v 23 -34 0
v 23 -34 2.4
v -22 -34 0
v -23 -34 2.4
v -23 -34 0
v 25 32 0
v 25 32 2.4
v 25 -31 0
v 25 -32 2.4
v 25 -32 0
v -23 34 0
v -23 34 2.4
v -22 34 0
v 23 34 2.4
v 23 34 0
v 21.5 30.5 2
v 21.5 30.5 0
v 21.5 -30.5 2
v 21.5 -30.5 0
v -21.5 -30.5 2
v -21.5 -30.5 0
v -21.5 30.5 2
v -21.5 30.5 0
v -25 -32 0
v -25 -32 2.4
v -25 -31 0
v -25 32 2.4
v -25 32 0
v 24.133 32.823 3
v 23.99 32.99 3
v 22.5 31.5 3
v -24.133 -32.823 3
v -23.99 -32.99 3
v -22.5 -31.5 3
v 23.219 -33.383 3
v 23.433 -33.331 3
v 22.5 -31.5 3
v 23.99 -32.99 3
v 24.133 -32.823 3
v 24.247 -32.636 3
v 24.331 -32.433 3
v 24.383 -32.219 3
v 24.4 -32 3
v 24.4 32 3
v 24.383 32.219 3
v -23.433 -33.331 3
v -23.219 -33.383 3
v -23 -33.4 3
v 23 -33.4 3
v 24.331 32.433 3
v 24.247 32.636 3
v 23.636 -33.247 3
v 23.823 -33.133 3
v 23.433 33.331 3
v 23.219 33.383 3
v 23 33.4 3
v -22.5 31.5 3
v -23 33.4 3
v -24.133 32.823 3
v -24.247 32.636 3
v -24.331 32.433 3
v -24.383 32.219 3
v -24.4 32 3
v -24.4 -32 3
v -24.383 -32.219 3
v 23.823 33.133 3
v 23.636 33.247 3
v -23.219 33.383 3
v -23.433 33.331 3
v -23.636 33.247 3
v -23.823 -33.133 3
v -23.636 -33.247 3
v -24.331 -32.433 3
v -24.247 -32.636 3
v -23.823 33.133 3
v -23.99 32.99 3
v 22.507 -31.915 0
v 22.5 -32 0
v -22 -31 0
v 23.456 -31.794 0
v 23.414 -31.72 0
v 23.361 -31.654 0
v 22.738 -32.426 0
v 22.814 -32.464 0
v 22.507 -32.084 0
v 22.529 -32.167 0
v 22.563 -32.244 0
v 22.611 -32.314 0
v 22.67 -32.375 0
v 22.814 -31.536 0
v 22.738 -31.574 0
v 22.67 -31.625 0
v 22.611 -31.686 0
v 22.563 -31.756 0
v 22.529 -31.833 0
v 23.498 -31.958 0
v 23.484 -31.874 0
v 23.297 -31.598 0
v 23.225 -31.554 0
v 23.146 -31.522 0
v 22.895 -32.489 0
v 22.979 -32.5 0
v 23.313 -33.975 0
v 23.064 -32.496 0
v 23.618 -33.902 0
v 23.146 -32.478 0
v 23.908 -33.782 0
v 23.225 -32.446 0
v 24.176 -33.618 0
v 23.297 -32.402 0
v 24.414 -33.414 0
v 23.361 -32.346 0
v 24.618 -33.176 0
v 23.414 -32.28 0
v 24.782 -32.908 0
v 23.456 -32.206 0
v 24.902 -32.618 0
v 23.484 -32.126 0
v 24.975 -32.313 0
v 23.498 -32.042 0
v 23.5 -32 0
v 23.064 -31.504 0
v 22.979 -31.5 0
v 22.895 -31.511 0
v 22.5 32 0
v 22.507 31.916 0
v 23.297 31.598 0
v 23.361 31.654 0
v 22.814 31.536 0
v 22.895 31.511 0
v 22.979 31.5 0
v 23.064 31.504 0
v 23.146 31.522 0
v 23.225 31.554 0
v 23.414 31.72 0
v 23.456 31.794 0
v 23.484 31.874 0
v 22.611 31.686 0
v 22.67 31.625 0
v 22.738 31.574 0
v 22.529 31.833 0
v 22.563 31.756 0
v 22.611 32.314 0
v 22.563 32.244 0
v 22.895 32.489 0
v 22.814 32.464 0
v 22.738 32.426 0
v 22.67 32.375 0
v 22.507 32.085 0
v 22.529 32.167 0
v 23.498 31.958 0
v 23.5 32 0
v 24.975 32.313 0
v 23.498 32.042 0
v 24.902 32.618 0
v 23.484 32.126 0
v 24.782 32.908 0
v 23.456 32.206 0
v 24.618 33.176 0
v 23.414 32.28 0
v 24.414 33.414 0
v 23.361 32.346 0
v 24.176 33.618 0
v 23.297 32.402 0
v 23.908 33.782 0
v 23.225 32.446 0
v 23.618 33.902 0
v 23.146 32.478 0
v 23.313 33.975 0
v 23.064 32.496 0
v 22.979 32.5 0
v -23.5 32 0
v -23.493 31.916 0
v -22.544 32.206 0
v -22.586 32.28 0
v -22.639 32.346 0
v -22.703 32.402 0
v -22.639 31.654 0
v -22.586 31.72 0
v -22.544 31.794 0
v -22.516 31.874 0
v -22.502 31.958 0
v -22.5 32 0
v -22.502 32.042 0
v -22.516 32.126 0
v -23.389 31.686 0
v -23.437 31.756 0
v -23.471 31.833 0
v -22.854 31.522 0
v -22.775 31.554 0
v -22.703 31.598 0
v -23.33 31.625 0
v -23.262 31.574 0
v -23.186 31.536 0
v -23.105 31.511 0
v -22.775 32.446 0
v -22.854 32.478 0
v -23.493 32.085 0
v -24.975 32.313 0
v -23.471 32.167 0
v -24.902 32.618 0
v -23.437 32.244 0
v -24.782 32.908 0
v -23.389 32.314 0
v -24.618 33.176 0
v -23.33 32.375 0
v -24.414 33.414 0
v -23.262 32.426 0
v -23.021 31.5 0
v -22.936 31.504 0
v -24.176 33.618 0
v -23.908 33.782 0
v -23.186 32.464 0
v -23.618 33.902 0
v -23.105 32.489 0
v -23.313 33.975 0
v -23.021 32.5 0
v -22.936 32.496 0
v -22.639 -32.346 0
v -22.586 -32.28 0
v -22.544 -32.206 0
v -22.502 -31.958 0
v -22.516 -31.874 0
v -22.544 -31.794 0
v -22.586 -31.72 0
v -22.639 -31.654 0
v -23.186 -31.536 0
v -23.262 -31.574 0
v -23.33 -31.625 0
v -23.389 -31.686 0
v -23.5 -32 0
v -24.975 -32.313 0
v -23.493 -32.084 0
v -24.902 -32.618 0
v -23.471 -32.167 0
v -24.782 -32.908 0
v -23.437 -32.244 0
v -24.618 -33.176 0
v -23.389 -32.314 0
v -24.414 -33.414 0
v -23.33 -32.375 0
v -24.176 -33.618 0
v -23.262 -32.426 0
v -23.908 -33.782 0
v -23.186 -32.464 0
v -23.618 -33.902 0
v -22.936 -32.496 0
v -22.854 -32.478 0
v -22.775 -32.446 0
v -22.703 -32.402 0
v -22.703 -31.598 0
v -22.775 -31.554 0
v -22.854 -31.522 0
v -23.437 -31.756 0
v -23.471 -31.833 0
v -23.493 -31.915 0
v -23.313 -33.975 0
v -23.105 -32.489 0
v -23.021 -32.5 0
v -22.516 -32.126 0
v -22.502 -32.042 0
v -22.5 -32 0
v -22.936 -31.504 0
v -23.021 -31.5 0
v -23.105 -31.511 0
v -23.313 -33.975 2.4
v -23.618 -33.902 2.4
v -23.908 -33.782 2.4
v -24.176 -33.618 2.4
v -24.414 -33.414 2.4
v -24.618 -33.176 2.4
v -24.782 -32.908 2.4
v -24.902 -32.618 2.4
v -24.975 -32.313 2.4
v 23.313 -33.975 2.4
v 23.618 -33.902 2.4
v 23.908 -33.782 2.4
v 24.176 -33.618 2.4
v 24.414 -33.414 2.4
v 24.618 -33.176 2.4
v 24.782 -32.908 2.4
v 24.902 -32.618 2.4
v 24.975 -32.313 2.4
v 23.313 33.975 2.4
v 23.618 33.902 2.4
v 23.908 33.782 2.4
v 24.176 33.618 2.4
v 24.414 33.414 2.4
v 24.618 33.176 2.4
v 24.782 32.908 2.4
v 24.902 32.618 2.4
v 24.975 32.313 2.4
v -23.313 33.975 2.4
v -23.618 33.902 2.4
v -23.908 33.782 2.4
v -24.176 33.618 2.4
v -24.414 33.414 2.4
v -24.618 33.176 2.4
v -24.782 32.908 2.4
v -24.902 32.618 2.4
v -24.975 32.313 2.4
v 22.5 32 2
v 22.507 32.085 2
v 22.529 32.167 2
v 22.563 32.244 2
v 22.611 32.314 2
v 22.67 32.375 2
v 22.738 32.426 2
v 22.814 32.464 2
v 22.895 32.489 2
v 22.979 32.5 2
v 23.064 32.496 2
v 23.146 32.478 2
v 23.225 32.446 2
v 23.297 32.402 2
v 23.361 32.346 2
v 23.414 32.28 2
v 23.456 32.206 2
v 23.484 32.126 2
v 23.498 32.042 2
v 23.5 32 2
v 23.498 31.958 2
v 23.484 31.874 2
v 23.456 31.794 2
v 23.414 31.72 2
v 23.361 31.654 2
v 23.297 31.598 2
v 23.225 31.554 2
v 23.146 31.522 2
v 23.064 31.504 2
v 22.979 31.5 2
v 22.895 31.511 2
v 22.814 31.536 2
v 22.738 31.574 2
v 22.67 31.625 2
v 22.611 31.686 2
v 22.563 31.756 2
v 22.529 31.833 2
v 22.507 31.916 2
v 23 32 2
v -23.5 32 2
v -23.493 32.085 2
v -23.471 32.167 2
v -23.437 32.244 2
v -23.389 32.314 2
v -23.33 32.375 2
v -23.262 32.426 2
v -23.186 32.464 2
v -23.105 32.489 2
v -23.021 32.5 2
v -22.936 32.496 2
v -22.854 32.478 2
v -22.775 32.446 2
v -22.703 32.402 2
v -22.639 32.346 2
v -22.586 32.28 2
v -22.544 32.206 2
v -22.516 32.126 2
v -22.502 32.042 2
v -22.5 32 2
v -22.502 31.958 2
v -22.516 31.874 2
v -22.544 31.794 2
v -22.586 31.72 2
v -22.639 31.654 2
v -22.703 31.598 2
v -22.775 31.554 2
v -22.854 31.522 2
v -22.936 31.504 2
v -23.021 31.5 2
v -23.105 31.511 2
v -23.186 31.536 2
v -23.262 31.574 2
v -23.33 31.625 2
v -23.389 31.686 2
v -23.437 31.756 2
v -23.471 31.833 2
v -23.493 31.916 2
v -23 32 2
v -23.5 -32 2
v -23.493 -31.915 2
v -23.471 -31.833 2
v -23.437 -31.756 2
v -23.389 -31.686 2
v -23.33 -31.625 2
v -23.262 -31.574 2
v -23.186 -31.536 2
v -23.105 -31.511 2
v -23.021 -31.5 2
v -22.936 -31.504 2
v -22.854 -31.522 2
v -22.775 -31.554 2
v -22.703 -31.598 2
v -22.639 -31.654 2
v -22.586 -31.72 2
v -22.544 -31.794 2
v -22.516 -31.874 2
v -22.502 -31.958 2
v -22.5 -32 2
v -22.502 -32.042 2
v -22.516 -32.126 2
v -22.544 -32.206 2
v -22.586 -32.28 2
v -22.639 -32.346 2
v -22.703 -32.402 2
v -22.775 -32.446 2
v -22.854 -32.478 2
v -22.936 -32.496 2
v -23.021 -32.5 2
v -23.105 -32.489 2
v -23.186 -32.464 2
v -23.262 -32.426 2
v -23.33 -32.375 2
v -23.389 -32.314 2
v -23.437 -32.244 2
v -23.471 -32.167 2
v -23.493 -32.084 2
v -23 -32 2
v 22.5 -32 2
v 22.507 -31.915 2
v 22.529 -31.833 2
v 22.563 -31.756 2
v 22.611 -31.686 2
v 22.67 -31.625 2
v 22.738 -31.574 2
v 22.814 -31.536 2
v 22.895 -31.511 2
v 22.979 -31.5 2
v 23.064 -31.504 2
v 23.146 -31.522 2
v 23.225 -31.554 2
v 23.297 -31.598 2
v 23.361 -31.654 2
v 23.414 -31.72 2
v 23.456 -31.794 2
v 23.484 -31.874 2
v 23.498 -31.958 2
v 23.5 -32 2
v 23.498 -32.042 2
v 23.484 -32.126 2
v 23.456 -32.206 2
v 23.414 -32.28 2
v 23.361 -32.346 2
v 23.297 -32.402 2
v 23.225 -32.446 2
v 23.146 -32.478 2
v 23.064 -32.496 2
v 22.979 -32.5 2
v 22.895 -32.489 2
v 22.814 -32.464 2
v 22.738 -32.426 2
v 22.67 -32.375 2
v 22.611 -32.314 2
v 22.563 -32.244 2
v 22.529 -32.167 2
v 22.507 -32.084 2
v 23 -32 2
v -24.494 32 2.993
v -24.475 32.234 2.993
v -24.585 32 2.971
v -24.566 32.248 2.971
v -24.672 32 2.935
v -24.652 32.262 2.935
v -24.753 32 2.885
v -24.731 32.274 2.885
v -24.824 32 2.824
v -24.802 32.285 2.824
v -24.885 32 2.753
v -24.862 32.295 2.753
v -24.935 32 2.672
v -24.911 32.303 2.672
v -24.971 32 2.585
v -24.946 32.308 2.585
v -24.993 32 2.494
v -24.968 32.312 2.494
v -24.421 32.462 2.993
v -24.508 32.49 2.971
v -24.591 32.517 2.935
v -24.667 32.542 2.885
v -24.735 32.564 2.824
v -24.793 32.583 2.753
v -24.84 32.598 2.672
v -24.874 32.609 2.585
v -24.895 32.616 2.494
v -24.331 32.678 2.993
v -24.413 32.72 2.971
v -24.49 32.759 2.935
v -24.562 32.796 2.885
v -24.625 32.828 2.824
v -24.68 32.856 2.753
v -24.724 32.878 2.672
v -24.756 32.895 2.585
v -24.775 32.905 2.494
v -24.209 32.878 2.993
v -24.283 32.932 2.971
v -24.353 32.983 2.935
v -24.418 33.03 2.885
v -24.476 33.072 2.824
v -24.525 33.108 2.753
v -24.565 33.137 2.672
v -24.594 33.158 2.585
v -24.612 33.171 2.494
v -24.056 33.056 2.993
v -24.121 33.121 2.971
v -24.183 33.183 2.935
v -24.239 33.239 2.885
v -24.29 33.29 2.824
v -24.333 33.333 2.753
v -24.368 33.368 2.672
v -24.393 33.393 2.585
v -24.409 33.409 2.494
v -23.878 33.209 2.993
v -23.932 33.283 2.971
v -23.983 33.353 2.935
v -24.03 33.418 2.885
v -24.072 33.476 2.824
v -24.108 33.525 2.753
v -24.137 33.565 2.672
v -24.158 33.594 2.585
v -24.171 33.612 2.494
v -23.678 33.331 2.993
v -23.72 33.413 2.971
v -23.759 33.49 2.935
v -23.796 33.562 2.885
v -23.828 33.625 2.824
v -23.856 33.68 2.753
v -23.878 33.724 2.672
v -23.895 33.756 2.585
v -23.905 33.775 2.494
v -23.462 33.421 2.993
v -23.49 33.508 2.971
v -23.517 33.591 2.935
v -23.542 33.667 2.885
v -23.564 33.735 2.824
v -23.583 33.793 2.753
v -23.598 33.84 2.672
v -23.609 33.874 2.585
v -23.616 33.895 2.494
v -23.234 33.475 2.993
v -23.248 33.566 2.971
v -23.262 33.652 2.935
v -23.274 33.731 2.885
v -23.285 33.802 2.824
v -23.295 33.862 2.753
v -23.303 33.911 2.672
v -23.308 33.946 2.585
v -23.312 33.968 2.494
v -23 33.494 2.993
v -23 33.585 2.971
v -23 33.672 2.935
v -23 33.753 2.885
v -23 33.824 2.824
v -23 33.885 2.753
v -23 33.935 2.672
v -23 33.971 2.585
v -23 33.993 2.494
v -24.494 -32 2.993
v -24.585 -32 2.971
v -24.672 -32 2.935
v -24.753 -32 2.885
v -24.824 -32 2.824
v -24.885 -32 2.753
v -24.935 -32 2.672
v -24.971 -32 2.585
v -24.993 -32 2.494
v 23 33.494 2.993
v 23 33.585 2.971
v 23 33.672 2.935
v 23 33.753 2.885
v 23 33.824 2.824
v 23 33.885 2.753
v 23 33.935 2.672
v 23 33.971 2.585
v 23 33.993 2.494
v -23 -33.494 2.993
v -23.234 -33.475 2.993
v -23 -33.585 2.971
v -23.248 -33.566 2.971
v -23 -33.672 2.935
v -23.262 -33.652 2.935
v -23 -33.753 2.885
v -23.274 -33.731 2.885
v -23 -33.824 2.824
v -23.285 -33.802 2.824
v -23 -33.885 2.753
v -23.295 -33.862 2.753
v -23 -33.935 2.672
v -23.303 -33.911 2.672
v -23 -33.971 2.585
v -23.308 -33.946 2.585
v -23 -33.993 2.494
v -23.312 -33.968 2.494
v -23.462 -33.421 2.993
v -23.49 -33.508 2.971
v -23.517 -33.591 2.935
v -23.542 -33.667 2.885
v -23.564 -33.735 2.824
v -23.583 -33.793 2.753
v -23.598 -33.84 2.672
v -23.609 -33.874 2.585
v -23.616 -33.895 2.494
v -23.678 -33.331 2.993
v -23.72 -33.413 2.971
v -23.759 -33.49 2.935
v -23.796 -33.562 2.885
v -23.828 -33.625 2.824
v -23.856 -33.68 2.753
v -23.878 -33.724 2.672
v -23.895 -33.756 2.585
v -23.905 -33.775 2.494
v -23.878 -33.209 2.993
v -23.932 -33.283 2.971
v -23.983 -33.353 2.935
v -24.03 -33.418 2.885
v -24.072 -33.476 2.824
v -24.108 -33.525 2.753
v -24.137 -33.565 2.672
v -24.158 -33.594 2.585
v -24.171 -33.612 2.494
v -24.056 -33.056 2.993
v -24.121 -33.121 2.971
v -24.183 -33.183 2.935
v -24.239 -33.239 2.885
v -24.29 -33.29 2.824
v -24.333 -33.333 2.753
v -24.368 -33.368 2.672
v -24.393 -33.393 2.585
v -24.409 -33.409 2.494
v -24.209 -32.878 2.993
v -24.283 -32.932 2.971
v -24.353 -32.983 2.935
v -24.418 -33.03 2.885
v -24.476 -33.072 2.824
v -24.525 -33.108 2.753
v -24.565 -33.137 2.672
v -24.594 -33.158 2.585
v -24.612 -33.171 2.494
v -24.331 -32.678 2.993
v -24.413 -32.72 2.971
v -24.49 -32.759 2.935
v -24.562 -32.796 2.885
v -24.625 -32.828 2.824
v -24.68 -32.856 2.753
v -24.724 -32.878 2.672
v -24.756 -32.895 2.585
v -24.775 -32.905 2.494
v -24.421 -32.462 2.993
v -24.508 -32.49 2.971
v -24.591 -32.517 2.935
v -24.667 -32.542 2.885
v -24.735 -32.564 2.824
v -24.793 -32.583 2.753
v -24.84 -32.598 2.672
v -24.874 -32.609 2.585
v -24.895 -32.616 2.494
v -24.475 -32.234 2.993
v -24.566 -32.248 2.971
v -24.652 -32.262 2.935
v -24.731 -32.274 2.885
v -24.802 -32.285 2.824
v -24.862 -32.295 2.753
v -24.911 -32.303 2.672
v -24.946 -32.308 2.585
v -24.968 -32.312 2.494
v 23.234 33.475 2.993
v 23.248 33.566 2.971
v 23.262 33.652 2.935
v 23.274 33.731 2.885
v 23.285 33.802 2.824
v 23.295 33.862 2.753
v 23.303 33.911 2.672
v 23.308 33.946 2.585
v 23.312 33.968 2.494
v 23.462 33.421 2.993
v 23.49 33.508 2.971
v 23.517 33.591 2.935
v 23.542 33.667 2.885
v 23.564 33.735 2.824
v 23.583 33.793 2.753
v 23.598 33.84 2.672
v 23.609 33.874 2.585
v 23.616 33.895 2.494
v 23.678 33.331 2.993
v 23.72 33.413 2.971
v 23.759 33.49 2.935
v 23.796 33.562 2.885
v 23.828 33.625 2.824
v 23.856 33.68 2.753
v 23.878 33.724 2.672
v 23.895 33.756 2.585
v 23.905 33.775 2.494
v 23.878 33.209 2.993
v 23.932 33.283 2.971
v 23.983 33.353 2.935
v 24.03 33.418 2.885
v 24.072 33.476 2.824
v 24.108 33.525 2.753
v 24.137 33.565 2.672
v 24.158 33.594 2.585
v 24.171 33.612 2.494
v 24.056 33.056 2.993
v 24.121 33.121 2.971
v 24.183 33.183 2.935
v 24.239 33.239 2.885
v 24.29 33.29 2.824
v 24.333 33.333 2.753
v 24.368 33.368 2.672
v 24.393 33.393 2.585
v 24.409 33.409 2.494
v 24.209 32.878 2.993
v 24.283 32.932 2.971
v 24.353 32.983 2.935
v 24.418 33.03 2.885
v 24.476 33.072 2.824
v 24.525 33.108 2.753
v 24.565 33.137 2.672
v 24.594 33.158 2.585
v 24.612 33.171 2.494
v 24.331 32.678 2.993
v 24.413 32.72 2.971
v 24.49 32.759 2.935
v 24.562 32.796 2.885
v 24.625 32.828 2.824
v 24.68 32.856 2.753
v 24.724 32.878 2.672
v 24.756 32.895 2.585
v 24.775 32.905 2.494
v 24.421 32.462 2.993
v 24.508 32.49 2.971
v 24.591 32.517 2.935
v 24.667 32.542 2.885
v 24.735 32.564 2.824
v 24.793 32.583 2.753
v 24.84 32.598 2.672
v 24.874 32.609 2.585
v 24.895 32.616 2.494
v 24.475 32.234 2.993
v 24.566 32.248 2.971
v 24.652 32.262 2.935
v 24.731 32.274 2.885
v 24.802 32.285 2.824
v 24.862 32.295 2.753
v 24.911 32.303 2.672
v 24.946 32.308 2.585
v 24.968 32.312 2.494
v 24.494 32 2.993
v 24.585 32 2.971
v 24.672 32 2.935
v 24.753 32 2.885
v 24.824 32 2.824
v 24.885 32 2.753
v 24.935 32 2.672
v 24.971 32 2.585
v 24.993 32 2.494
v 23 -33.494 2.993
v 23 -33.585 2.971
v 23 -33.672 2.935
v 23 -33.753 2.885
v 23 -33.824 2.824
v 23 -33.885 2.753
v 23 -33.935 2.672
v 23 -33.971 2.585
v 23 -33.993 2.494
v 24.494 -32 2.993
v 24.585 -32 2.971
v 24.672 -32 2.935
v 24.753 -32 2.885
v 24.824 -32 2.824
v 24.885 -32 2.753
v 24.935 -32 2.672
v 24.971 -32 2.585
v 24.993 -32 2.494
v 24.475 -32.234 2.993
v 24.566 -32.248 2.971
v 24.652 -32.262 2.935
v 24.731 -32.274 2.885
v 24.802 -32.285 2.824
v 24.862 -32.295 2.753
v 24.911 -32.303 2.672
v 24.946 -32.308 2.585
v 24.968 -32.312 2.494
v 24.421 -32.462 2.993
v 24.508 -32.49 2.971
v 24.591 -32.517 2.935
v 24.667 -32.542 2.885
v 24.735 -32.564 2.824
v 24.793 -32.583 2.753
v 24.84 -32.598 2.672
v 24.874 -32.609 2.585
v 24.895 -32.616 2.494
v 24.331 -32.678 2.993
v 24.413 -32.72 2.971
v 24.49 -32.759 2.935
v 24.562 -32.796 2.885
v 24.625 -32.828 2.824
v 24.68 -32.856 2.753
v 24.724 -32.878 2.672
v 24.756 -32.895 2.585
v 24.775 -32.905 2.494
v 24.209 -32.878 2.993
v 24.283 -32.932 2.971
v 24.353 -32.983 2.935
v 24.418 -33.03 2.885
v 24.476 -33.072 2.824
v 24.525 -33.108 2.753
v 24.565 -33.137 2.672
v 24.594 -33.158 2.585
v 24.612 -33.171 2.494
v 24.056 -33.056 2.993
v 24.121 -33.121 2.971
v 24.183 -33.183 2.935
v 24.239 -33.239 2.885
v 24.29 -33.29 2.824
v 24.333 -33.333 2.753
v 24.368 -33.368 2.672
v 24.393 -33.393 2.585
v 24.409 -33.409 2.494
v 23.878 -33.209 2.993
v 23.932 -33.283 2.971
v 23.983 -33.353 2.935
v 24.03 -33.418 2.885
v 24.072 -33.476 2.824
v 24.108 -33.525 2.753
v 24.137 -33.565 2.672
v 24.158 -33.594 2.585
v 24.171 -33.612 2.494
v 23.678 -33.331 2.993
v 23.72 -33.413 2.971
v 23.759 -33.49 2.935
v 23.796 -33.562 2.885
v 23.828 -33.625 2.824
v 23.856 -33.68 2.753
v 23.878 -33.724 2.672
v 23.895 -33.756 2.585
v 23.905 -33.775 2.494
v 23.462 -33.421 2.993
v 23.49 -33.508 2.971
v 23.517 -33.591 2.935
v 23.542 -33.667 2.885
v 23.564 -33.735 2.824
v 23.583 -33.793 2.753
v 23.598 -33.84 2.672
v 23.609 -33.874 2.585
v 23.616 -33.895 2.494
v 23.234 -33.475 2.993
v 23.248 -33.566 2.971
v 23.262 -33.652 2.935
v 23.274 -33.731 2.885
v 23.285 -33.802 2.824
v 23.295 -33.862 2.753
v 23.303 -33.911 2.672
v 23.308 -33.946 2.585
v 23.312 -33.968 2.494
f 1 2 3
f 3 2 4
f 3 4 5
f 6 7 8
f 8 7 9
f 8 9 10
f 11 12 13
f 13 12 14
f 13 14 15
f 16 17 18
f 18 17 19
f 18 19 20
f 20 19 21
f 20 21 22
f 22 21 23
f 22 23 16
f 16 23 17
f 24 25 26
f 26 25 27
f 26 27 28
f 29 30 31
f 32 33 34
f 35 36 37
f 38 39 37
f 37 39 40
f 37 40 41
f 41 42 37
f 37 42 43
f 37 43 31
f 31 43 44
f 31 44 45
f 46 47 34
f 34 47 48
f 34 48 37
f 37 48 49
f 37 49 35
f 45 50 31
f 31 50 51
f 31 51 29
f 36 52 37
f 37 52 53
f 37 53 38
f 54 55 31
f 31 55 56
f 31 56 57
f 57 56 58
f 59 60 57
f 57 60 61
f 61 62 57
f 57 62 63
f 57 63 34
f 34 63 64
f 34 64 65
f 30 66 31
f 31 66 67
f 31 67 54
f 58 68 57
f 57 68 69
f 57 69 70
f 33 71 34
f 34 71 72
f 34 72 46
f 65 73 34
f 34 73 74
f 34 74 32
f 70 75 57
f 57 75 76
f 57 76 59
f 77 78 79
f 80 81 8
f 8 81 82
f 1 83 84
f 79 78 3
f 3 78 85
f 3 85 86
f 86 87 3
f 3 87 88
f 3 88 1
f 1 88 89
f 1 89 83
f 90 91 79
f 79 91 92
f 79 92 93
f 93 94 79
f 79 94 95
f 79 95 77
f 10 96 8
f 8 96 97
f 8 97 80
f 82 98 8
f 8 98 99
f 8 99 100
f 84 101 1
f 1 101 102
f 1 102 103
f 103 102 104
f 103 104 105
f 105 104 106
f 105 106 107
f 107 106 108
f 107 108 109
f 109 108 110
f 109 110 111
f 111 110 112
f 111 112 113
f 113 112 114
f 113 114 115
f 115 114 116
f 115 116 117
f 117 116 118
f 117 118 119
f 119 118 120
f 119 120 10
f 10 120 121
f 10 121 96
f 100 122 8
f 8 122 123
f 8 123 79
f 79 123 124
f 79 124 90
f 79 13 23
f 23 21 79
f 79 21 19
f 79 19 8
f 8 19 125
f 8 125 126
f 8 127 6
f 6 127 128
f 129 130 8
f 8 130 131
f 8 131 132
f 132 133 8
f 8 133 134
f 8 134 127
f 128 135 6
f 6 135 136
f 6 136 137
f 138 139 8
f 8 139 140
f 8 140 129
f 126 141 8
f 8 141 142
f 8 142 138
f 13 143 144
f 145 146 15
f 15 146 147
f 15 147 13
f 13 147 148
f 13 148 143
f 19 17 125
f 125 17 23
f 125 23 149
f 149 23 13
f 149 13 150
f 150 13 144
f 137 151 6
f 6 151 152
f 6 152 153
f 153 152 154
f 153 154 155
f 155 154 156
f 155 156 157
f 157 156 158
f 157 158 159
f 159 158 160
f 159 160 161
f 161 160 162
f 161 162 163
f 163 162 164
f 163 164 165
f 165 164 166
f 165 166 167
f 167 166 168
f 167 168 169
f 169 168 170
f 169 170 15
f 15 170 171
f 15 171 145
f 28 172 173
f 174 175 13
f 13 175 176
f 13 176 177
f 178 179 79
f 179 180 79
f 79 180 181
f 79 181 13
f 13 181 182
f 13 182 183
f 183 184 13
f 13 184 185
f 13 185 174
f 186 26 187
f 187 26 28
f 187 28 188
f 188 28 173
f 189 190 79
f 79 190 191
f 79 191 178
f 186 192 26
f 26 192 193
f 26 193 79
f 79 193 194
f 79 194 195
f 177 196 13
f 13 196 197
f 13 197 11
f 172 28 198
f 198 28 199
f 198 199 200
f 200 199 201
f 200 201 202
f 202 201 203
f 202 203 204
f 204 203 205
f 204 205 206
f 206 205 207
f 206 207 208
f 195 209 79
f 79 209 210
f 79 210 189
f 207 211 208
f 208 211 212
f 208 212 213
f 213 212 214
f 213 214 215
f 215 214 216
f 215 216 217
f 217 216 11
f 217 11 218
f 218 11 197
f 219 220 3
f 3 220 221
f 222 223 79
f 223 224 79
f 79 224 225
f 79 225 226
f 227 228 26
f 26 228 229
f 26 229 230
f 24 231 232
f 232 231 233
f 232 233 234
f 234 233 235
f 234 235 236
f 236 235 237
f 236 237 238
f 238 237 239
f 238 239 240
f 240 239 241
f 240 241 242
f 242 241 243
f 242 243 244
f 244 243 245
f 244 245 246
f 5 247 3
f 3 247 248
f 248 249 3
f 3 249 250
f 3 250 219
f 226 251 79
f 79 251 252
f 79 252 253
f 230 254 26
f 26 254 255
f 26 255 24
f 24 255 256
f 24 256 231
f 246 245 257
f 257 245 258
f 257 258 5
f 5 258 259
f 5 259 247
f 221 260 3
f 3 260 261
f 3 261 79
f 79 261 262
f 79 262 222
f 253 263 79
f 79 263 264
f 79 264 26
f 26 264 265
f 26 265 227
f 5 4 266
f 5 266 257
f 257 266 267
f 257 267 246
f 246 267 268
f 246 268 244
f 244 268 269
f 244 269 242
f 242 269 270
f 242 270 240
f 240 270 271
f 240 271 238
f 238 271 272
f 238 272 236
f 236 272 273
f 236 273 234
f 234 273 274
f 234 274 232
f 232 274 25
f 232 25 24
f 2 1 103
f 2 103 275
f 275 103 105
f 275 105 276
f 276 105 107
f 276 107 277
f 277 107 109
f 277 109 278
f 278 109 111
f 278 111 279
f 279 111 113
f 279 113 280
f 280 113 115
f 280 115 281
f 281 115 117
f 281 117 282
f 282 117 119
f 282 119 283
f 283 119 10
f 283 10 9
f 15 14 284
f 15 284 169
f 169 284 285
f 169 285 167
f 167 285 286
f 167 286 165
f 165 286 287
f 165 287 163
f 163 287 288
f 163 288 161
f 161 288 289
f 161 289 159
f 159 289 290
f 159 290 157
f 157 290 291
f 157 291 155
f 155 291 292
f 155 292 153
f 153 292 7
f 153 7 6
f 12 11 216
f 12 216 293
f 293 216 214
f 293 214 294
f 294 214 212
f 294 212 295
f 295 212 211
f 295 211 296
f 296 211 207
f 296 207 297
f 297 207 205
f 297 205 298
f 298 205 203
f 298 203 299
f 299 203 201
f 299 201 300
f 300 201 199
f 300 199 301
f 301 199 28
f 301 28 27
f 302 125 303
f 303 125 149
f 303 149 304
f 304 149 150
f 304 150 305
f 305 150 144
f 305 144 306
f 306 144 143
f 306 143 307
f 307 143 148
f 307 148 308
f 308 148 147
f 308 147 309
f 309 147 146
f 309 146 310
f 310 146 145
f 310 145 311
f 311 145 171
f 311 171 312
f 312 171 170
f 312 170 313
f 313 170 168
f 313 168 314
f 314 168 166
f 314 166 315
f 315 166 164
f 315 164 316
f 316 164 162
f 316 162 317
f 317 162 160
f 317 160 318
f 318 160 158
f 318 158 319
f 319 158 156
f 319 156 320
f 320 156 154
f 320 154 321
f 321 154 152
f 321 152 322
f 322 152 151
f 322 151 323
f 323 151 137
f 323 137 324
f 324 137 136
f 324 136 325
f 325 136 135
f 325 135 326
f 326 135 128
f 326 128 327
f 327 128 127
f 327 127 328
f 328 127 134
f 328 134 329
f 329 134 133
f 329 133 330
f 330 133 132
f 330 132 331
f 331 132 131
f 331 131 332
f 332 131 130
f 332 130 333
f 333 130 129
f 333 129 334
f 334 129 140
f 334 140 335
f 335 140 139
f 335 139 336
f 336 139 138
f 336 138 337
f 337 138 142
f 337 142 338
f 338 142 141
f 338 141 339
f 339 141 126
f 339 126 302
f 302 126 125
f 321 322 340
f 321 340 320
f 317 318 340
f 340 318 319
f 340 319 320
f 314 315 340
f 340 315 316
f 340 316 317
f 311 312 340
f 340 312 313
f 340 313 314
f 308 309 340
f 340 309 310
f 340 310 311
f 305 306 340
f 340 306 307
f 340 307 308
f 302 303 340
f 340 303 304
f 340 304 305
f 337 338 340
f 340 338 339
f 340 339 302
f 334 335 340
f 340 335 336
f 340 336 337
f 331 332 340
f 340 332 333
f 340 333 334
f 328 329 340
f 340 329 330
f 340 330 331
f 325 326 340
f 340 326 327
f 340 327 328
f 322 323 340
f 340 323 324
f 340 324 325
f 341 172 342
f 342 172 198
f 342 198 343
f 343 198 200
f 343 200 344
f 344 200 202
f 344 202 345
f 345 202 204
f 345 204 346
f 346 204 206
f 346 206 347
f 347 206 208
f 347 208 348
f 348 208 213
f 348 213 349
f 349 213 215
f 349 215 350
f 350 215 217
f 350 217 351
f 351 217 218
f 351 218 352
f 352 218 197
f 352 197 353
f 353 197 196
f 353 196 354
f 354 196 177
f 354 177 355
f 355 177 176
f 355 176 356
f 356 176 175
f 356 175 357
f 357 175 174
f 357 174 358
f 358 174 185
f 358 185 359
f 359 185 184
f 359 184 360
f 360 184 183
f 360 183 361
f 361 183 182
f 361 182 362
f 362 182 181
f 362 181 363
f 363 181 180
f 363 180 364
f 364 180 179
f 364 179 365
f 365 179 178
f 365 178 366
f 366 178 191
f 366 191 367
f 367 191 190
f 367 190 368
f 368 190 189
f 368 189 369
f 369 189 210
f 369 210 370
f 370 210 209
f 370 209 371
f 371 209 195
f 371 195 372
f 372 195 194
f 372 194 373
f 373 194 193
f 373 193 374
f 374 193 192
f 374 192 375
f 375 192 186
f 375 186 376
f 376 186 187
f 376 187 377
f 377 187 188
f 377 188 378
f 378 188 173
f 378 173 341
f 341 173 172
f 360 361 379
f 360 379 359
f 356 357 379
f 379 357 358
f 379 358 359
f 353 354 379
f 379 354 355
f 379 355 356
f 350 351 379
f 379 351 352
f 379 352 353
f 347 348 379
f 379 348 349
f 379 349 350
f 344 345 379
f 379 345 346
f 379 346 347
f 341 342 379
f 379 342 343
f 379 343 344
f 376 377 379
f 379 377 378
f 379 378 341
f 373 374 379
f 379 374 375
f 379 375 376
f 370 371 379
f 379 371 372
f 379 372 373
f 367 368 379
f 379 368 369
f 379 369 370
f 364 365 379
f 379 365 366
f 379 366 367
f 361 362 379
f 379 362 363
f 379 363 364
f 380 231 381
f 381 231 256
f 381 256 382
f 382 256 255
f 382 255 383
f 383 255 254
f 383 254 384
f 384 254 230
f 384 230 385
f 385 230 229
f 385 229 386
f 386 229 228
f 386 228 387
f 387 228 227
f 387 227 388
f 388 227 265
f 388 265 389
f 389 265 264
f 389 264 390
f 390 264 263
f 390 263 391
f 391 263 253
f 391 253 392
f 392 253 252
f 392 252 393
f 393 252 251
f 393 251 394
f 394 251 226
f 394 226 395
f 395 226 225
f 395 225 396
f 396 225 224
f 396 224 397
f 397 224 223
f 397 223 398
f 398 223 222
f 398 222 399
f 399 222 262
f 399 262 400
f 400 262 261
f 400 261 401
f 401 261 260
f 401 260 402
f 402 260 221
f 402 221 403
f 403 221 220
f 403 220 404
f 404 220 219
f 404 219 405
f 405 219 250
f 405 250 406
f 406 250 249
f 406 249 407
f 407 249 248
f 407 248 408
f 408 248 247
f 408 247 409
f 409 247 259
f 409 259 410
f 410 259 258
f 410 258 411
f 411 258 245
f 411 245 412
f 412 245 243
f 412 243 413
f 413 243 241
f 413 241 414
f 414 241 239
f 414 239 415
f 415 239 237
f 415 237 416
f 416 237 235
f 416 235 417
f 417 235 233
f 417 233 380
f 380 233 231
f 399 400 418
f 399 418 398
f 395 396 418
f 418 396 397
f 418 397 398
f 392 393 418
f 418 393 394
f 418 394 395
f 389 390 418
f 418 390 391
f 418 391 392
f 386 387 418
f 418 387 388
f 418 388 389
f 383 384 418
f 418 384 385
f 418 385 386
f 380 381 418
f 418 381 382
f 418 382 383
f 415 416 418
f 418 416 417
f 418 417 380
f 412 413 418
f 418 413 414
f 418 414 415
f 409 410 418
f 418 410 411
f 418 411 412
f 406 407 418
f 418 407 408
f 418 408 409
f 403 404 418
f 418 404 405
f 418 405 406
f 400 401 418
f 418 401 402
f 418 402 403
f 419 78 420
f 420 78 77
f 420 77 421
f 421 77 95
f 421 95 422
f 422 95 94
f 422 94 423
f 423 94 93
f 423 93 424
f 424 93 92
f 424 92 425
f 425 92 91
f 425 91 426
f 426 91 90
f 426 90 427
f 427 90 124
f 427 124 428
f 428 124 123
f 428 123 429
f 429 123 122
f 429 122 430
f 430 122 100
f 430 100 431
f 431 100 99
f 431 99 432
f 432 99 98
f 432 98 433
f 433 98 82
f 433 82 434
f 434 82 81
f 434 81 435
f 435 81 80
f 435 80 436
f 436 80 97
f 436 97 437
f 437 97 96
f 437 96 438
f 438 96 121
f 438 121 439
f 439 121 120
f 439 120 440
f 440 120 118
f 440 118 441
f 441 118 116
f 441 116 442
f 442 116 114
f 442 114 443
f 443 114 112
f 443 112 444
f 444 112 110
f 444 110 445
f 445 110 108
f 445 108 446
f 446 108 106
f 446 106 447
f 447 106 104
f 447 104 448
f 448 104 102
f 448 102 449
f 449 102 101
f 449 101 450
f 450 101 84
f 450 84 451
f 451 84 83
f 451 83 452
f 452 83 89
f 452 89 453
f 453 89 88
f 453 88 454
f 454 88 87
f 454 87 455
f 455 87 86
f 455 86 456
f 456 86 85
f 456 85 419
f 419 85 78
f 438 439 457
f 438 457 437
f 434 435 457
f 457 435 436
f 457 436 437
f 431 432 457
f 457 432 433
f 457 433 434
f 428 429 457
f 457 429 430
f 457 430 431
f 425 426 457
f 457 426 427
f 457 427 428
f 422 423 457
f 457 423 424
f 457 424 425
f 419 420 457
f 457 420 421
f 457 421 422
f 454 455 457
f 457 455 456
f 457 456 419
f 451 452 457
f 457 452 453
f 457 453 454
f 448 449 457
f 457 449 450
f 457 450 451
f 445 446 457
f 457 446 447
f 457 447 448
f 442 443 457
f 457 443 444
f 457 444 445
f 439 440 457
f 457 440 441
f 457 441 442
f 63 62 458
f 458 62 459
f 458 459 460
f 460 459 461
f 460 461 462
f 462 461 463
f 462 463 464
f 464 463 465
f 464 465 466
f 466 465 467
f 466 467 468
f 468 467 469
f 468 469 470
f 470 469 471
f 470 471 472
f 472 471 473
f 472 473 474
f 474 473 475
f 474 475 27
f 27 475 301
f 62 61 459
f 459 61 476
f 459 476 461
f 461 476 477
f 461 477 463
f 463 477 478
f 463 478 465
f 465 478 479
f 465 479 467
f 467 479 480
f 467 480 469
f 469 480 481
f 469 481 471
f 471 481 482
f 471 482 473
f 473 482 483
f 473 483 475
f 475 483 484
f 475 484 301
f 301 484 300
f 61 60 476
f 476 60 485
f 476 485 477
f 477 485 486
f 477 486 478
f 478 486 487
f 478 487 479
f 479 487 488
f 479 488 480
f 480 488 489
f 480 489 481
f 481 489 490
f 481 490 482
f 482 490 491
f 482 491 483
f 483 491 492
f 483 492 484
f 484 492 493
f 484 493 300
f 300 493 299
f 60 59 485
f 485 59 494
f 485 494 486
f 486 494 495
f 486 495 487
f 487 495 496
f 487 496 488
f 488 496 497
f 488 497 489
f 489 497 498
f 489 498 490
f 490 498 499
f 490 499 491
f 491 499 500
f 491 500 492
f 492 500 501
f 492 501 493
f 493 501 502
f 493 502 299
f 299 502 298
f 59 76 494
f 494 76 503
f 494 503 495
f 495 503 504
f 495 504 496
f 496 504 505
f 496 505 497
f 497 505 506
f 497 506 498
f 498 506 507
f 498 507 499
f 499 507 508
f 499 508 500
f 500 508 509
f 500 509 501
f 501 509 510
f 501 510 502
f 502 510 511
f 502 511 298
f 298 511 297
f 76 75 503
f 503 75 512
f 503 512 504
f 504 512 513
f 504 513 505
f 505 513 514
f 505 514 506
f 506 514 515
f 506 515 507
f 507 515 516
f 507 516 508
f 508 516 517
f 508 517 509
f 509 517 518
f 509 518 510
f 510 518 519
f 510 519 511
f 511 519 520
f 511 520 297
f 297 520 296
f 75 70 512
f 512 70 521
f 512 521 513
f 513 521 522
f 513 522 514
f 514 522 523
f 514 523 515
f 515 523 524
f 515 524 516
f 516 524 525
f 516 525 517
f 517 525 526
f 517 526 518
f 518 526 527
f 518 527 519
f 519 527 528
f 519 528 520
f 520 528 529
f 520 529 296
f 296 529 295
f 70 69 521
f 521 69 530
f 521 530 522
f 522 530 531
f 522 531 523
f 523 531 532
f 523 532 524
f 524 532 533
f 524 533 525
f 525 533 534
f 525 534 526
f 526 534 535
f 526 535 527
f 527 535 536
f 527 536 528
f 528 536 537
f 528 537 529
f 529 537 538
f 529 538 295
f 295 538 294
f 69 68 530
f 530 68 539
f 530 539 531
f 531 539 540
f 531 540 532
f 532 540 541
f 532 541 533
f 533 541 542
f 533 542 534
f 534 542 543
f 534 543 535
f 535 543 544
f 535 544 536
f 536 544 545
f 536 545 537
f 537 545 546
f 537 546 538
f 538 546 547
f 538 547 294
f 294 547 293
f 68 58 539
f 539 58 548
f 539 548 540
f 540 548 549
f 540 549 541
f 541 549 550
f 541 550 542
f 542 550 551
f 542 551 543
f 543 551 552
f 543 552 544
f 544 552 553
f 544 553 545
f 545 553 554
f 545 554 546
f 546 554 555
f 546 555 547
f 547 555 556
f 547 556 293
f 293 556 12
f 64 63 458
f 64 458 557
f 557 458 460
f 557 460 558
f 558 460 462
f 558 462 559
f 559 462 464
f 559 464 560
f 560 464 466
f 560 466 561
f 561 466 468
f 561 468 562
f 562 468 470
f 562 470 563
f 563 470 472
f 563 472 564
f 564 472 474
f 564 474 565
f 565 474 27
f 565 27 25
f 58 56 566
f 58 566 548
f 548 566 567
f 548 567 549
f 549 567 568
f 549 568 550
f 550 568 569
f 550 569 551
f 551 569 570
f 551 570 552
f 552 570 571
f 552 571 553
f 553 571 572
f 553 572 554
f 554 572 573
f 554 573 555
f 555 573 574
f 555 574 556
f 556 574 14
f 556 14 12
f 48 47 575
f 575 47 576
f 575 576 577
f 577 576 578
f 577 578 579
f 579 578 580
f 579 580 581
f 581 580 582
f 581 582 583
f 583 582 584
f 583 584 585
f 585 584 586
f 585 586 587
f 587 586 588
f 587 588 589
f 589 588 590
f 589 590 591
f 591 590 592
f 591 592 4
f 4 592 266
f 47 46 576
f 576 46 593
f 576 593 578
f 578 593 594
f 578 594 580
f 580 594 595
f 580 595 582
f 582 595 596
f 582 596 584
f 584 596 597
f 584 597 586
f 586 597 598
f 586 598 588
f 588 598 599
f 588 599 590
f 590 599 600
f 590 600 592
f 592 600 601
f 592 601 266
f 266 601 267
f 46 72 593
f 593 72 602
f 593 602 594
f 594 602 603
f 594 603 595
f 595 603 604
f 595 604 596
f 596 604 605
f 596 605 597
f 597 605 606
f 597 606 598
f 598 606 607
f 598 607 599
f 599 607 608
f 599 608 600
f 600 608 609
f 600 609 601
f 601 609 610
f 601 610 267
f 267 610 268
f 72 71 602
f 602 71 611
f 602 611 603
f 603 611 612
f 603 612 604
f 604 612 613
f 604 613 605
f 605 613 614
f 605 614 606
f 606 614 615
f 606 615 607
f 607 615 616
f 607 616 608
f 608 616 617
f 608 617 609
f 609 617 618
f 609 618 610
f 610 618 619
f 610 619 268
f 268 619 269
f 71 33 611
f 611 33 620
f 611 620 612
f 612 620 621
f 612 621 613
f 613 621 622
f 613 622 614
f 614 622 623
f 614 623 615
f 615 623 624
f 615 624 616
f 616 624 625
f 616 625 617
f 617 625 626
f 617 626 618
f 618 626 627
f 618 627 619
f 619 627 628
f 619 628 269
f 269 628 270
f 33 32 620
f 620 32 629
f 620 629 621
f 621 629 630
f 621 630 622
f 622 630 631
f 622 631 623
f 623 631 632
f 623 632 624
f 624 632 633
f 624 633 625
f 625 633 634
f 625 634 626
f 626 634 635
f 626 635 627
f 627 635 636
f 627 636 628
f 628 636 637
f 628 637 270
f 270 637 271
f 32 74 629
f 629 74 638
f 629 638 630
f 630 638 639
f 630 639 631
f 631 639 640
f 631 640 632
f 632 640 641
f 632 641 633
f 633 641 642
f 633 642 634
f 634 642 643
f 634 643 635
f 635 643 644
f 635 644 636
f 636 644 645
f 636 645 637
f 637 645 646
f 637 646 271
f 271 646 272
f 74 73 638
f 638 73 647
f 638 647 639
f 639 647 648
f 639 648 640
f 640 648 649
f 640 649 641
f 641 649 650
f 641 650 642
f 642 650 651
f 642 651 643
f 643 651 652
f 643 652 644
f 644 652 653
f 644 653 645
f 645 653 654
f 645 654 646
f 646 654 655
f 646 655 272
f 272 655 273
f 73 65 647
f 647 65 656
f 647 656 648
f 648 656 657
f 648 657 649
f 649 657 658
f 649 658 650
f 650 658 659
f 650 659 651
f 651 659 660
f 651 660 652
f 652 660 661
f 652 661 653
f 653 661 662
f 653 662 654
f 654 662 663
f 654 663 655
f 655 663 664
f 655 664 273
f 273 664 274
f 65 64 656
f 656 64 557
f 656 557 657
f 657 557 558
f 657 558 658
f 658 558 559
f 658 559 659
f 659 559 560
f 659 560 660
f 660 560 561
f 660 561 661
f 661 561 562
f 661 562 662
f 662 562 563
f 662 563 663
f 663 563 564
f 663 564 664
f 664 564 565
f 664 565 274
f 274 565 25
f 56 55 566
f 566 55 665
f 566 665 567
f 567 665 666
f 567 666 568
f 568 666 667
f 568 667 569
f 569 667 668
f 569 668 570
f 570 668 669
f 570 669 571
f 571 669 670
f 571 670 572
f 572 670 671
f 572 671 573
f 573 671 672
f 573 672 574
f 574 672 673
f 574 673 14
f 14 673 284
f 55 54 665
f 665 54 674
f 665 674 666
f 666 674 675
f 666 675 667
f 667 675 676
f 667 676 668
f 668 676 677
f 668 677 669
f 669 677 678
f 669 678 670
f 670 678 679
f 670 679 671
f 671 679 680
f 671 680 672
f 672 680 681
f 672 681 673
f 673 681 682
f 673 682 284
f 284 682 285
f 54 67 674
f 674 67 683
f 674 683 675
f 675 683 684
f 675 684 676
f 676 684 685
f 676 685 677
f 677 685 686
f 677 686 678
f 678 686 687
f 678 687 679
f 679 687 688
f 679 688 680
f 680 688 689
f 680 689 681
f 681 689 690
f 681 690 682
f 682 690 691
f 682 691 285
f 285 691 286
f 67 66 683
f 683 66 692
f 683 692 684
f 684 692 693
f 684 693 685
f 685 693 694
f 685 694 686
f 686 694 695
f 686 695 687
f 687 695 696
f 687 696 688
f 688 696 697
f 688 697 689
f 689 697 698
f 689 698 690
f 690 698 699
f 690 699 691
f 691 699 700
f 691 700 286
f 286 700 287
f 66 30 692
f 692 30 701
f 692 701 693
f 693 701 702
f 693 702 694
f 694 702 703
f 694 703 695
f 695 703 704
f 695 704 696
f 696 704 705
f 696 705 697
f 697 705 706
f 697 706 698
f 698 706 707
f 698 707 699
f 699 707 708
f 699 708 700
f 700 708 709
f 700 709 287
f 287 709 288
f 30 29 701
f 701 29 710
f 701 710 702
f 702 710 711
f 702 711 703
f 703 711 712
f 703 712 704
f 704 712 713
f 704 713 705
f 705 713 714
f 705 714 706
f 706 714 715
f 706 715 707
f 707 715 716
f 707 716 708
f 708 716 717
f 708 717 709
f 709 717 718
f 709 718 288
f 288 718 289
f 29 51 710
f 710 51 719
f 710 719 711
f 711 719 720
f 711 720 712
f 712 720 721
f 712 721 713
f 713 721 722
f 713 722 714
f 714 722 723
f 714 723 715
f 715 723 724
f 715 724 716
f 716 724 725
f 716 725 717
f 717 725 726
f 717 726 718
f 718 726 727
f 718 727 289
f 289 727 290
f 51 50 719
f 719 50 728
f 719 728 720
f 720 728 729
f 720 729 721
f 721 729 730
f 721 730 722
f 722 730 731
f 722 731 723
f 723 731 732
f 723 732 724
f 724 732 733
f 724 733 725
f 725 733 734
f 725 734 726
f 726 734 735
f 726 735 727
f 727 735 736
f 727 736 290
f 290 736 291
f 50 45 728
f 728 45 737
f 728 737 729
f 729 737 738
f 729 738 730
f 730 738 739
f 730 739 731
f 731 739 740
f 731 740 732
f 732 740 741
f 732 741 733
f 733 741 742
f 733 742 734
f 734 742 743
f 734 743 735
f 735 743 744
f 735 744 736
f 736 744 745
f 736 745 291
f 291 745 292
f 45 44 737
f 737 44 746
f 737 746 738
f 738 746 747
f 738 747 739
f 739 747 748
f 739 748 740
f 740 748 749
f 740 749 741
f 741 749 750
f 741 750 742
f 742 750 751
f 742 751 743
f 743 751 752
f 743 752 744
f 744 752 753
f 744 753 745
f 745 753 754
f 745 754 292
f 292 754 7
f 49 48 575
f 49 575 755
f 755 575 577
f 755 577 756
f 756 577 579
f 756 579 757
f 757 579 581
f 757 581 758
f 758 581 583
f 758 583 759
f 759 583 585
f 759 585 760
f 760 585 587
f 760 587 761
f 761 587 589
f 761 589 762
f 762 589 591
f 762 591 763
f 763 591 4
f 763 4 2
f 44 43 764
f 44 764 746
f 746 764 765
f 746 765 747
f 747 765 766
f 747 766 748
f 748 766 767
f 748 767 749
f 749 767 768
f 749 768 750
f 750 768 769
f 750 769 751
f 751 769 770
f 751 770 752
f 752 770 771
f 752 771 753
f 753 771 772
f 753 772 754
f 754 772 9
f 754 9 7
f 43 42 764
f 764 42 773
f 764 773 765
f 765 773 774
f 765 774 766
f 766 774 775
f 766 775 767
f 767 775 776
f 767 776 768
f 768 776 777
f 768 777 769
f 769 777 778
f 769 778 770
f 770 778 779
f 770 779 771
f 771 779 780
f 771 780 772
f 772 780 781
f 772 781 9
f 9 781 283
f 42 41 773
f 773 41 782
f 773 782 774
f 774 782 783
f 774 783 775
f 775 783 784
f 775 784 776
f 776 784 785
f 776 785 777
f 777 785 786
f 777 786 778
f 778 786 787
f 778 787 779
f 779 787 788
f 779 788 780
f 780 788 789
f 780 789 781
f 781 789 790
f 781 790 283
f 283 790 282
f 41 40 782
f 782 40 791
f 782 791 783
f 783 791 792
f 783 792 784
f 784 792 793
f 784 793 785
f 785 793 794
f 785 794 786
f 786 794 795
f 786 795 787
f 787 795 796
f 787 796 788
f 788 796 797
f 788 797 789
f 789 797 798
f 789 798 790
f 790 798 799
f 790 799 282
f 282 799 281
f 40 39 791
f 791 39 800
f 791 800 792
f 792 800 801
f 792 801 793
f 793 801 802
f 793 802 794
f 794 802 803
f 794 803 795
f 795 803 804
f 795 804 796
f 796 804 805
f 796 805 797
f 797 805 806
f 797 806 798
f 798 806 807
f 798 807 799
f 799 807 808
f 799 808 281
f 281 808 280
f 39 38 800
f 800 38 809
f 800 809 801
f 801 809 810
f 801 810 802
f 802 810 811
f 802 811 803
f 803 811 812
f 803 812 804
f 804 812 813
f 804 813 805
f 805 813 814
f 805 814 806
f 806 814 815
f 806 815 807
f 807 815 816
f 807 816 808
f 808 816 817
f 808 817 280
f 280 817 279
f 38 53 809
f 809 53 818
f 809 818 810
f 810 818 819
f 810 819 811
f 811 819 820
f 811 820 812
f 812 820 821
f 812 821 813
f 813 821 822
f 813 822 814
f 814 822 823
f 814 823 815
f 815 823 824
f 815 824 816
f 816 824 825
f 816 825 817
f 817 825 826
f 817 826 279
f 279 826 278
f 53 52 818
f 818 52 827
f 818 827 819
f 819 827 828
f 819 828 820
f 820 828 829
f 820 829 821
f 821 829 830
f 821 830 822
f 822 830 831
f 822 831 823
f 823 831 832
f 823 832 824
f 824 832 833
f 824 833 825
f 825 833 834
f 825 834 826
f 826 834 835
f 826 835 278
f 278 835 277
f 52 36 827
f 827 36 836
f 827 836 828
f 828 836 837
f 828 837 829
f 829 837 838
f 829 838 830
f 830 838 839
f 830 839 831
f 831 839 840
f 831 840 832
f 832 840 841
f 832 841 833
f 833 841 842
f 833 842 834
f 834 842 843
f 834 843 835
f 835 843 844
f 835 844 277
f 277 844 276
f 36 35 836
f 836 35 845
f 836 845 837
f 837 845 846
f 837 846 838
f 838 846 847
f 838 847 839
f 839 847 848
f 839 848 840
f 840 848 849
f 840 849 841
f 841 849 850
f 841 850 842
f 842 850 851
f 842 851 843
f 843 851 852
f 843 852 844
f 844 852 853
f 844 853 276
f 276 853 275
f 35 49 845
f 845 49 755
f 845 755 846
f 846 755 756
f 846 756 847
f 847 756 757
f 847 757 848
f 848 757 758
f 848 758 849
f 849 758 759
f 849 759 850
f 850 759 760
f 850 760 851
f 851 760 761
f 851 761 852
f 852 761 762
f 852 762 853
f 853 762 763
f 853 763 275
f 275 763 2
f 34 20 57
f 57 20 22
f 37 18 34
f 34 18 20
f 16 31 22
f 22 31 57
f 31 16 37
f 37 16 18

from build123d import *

# Parameters (mm, degrees)
SKETCH_1_W          = 50
SKETCH_1_H          = 68
SKETCH_1_W_2        = 43
SKETCH_1_H_2        = 61
EXTRUDE_1_DEPTH     = 3
FILLET_1_R          = 2
SKETCH_1_5_R        = 0.5
CUT_EXTRUDE_1_DEPTH = 2
FILLET_2_R          = 0.6
CHAMFER_1_SIZE      = 1


with BuildPart() as part:
    # 草图1 → 凸台-拉伸1 (new body)
    with BuildSketch(Plane.XY):
        Rectangle(SKETCH_1_W, SKETCH_1_H)
        Rectangle(SKETCH_1_W_2, SKETCH_1_H_2, mode=Mode.SUBTRACT)
    extrude(amount=EXTRUDE_1_DEPTH)

    # 圆角1
    fillet_1_edges = [part.edges().sort_by_distance(p)[0] for p in [
        (-25, -34, 1.5),
        (25, -34, 1.5),
        (25, 34, 1.5),
        (-25, 34, 1.5),
    ]]
    fillet(fillet_1_edges, radius=FILLET_1_R)

    # 草图1<5> → 切除-拉伸1 (cut)
    with BuildSketch(Plane.XY):
        with Locations((-23, 32)):
            Circle(SKETCH_1_5_R)
        with Locations((23, 32)):
            Circle(SKETCH_1_5_R)
        with Locations((23, -32)):
            Circle(SKETCH_1_5_R)
        with Locations((-23, -32)):
            Circle(SKETCH_1_5_R)
    extrude(amount=CUT_EXTRUDE_1_DEPTH, mode=Mode.SUBTRACT)

    # 圆角2
    fillet_2_edges = [part.edges().sort_by_distance(p)[0] for p in [
        (24.414213562, -33.414213562, 3),
        (0, -34, 3),
        (-24.414213562, -33.414213562, 3),
        (-25, 0, 3),
        (-24.414213562, 33.414213562, 3),
        (0, 34, 3),
        (24.414213562, 33.414213562, 3),
        (25, 0, 3),
    ]]
    fillet(fillet_2_edges, radius=FILLET_2_R)

    # 倒角1
    chamfer_1_edges = [part.edges().sort_by_distance(p)[0] for p in [
        (21.5, 0, 3),
        (0, 30.5, 3),
        (0, -30.5, 3),
        (-21.5, 0, 3),
    ]]
    chamfer(chamfer_1_edges, length=CHAMFER_1_SIZE)


solid = part.part
